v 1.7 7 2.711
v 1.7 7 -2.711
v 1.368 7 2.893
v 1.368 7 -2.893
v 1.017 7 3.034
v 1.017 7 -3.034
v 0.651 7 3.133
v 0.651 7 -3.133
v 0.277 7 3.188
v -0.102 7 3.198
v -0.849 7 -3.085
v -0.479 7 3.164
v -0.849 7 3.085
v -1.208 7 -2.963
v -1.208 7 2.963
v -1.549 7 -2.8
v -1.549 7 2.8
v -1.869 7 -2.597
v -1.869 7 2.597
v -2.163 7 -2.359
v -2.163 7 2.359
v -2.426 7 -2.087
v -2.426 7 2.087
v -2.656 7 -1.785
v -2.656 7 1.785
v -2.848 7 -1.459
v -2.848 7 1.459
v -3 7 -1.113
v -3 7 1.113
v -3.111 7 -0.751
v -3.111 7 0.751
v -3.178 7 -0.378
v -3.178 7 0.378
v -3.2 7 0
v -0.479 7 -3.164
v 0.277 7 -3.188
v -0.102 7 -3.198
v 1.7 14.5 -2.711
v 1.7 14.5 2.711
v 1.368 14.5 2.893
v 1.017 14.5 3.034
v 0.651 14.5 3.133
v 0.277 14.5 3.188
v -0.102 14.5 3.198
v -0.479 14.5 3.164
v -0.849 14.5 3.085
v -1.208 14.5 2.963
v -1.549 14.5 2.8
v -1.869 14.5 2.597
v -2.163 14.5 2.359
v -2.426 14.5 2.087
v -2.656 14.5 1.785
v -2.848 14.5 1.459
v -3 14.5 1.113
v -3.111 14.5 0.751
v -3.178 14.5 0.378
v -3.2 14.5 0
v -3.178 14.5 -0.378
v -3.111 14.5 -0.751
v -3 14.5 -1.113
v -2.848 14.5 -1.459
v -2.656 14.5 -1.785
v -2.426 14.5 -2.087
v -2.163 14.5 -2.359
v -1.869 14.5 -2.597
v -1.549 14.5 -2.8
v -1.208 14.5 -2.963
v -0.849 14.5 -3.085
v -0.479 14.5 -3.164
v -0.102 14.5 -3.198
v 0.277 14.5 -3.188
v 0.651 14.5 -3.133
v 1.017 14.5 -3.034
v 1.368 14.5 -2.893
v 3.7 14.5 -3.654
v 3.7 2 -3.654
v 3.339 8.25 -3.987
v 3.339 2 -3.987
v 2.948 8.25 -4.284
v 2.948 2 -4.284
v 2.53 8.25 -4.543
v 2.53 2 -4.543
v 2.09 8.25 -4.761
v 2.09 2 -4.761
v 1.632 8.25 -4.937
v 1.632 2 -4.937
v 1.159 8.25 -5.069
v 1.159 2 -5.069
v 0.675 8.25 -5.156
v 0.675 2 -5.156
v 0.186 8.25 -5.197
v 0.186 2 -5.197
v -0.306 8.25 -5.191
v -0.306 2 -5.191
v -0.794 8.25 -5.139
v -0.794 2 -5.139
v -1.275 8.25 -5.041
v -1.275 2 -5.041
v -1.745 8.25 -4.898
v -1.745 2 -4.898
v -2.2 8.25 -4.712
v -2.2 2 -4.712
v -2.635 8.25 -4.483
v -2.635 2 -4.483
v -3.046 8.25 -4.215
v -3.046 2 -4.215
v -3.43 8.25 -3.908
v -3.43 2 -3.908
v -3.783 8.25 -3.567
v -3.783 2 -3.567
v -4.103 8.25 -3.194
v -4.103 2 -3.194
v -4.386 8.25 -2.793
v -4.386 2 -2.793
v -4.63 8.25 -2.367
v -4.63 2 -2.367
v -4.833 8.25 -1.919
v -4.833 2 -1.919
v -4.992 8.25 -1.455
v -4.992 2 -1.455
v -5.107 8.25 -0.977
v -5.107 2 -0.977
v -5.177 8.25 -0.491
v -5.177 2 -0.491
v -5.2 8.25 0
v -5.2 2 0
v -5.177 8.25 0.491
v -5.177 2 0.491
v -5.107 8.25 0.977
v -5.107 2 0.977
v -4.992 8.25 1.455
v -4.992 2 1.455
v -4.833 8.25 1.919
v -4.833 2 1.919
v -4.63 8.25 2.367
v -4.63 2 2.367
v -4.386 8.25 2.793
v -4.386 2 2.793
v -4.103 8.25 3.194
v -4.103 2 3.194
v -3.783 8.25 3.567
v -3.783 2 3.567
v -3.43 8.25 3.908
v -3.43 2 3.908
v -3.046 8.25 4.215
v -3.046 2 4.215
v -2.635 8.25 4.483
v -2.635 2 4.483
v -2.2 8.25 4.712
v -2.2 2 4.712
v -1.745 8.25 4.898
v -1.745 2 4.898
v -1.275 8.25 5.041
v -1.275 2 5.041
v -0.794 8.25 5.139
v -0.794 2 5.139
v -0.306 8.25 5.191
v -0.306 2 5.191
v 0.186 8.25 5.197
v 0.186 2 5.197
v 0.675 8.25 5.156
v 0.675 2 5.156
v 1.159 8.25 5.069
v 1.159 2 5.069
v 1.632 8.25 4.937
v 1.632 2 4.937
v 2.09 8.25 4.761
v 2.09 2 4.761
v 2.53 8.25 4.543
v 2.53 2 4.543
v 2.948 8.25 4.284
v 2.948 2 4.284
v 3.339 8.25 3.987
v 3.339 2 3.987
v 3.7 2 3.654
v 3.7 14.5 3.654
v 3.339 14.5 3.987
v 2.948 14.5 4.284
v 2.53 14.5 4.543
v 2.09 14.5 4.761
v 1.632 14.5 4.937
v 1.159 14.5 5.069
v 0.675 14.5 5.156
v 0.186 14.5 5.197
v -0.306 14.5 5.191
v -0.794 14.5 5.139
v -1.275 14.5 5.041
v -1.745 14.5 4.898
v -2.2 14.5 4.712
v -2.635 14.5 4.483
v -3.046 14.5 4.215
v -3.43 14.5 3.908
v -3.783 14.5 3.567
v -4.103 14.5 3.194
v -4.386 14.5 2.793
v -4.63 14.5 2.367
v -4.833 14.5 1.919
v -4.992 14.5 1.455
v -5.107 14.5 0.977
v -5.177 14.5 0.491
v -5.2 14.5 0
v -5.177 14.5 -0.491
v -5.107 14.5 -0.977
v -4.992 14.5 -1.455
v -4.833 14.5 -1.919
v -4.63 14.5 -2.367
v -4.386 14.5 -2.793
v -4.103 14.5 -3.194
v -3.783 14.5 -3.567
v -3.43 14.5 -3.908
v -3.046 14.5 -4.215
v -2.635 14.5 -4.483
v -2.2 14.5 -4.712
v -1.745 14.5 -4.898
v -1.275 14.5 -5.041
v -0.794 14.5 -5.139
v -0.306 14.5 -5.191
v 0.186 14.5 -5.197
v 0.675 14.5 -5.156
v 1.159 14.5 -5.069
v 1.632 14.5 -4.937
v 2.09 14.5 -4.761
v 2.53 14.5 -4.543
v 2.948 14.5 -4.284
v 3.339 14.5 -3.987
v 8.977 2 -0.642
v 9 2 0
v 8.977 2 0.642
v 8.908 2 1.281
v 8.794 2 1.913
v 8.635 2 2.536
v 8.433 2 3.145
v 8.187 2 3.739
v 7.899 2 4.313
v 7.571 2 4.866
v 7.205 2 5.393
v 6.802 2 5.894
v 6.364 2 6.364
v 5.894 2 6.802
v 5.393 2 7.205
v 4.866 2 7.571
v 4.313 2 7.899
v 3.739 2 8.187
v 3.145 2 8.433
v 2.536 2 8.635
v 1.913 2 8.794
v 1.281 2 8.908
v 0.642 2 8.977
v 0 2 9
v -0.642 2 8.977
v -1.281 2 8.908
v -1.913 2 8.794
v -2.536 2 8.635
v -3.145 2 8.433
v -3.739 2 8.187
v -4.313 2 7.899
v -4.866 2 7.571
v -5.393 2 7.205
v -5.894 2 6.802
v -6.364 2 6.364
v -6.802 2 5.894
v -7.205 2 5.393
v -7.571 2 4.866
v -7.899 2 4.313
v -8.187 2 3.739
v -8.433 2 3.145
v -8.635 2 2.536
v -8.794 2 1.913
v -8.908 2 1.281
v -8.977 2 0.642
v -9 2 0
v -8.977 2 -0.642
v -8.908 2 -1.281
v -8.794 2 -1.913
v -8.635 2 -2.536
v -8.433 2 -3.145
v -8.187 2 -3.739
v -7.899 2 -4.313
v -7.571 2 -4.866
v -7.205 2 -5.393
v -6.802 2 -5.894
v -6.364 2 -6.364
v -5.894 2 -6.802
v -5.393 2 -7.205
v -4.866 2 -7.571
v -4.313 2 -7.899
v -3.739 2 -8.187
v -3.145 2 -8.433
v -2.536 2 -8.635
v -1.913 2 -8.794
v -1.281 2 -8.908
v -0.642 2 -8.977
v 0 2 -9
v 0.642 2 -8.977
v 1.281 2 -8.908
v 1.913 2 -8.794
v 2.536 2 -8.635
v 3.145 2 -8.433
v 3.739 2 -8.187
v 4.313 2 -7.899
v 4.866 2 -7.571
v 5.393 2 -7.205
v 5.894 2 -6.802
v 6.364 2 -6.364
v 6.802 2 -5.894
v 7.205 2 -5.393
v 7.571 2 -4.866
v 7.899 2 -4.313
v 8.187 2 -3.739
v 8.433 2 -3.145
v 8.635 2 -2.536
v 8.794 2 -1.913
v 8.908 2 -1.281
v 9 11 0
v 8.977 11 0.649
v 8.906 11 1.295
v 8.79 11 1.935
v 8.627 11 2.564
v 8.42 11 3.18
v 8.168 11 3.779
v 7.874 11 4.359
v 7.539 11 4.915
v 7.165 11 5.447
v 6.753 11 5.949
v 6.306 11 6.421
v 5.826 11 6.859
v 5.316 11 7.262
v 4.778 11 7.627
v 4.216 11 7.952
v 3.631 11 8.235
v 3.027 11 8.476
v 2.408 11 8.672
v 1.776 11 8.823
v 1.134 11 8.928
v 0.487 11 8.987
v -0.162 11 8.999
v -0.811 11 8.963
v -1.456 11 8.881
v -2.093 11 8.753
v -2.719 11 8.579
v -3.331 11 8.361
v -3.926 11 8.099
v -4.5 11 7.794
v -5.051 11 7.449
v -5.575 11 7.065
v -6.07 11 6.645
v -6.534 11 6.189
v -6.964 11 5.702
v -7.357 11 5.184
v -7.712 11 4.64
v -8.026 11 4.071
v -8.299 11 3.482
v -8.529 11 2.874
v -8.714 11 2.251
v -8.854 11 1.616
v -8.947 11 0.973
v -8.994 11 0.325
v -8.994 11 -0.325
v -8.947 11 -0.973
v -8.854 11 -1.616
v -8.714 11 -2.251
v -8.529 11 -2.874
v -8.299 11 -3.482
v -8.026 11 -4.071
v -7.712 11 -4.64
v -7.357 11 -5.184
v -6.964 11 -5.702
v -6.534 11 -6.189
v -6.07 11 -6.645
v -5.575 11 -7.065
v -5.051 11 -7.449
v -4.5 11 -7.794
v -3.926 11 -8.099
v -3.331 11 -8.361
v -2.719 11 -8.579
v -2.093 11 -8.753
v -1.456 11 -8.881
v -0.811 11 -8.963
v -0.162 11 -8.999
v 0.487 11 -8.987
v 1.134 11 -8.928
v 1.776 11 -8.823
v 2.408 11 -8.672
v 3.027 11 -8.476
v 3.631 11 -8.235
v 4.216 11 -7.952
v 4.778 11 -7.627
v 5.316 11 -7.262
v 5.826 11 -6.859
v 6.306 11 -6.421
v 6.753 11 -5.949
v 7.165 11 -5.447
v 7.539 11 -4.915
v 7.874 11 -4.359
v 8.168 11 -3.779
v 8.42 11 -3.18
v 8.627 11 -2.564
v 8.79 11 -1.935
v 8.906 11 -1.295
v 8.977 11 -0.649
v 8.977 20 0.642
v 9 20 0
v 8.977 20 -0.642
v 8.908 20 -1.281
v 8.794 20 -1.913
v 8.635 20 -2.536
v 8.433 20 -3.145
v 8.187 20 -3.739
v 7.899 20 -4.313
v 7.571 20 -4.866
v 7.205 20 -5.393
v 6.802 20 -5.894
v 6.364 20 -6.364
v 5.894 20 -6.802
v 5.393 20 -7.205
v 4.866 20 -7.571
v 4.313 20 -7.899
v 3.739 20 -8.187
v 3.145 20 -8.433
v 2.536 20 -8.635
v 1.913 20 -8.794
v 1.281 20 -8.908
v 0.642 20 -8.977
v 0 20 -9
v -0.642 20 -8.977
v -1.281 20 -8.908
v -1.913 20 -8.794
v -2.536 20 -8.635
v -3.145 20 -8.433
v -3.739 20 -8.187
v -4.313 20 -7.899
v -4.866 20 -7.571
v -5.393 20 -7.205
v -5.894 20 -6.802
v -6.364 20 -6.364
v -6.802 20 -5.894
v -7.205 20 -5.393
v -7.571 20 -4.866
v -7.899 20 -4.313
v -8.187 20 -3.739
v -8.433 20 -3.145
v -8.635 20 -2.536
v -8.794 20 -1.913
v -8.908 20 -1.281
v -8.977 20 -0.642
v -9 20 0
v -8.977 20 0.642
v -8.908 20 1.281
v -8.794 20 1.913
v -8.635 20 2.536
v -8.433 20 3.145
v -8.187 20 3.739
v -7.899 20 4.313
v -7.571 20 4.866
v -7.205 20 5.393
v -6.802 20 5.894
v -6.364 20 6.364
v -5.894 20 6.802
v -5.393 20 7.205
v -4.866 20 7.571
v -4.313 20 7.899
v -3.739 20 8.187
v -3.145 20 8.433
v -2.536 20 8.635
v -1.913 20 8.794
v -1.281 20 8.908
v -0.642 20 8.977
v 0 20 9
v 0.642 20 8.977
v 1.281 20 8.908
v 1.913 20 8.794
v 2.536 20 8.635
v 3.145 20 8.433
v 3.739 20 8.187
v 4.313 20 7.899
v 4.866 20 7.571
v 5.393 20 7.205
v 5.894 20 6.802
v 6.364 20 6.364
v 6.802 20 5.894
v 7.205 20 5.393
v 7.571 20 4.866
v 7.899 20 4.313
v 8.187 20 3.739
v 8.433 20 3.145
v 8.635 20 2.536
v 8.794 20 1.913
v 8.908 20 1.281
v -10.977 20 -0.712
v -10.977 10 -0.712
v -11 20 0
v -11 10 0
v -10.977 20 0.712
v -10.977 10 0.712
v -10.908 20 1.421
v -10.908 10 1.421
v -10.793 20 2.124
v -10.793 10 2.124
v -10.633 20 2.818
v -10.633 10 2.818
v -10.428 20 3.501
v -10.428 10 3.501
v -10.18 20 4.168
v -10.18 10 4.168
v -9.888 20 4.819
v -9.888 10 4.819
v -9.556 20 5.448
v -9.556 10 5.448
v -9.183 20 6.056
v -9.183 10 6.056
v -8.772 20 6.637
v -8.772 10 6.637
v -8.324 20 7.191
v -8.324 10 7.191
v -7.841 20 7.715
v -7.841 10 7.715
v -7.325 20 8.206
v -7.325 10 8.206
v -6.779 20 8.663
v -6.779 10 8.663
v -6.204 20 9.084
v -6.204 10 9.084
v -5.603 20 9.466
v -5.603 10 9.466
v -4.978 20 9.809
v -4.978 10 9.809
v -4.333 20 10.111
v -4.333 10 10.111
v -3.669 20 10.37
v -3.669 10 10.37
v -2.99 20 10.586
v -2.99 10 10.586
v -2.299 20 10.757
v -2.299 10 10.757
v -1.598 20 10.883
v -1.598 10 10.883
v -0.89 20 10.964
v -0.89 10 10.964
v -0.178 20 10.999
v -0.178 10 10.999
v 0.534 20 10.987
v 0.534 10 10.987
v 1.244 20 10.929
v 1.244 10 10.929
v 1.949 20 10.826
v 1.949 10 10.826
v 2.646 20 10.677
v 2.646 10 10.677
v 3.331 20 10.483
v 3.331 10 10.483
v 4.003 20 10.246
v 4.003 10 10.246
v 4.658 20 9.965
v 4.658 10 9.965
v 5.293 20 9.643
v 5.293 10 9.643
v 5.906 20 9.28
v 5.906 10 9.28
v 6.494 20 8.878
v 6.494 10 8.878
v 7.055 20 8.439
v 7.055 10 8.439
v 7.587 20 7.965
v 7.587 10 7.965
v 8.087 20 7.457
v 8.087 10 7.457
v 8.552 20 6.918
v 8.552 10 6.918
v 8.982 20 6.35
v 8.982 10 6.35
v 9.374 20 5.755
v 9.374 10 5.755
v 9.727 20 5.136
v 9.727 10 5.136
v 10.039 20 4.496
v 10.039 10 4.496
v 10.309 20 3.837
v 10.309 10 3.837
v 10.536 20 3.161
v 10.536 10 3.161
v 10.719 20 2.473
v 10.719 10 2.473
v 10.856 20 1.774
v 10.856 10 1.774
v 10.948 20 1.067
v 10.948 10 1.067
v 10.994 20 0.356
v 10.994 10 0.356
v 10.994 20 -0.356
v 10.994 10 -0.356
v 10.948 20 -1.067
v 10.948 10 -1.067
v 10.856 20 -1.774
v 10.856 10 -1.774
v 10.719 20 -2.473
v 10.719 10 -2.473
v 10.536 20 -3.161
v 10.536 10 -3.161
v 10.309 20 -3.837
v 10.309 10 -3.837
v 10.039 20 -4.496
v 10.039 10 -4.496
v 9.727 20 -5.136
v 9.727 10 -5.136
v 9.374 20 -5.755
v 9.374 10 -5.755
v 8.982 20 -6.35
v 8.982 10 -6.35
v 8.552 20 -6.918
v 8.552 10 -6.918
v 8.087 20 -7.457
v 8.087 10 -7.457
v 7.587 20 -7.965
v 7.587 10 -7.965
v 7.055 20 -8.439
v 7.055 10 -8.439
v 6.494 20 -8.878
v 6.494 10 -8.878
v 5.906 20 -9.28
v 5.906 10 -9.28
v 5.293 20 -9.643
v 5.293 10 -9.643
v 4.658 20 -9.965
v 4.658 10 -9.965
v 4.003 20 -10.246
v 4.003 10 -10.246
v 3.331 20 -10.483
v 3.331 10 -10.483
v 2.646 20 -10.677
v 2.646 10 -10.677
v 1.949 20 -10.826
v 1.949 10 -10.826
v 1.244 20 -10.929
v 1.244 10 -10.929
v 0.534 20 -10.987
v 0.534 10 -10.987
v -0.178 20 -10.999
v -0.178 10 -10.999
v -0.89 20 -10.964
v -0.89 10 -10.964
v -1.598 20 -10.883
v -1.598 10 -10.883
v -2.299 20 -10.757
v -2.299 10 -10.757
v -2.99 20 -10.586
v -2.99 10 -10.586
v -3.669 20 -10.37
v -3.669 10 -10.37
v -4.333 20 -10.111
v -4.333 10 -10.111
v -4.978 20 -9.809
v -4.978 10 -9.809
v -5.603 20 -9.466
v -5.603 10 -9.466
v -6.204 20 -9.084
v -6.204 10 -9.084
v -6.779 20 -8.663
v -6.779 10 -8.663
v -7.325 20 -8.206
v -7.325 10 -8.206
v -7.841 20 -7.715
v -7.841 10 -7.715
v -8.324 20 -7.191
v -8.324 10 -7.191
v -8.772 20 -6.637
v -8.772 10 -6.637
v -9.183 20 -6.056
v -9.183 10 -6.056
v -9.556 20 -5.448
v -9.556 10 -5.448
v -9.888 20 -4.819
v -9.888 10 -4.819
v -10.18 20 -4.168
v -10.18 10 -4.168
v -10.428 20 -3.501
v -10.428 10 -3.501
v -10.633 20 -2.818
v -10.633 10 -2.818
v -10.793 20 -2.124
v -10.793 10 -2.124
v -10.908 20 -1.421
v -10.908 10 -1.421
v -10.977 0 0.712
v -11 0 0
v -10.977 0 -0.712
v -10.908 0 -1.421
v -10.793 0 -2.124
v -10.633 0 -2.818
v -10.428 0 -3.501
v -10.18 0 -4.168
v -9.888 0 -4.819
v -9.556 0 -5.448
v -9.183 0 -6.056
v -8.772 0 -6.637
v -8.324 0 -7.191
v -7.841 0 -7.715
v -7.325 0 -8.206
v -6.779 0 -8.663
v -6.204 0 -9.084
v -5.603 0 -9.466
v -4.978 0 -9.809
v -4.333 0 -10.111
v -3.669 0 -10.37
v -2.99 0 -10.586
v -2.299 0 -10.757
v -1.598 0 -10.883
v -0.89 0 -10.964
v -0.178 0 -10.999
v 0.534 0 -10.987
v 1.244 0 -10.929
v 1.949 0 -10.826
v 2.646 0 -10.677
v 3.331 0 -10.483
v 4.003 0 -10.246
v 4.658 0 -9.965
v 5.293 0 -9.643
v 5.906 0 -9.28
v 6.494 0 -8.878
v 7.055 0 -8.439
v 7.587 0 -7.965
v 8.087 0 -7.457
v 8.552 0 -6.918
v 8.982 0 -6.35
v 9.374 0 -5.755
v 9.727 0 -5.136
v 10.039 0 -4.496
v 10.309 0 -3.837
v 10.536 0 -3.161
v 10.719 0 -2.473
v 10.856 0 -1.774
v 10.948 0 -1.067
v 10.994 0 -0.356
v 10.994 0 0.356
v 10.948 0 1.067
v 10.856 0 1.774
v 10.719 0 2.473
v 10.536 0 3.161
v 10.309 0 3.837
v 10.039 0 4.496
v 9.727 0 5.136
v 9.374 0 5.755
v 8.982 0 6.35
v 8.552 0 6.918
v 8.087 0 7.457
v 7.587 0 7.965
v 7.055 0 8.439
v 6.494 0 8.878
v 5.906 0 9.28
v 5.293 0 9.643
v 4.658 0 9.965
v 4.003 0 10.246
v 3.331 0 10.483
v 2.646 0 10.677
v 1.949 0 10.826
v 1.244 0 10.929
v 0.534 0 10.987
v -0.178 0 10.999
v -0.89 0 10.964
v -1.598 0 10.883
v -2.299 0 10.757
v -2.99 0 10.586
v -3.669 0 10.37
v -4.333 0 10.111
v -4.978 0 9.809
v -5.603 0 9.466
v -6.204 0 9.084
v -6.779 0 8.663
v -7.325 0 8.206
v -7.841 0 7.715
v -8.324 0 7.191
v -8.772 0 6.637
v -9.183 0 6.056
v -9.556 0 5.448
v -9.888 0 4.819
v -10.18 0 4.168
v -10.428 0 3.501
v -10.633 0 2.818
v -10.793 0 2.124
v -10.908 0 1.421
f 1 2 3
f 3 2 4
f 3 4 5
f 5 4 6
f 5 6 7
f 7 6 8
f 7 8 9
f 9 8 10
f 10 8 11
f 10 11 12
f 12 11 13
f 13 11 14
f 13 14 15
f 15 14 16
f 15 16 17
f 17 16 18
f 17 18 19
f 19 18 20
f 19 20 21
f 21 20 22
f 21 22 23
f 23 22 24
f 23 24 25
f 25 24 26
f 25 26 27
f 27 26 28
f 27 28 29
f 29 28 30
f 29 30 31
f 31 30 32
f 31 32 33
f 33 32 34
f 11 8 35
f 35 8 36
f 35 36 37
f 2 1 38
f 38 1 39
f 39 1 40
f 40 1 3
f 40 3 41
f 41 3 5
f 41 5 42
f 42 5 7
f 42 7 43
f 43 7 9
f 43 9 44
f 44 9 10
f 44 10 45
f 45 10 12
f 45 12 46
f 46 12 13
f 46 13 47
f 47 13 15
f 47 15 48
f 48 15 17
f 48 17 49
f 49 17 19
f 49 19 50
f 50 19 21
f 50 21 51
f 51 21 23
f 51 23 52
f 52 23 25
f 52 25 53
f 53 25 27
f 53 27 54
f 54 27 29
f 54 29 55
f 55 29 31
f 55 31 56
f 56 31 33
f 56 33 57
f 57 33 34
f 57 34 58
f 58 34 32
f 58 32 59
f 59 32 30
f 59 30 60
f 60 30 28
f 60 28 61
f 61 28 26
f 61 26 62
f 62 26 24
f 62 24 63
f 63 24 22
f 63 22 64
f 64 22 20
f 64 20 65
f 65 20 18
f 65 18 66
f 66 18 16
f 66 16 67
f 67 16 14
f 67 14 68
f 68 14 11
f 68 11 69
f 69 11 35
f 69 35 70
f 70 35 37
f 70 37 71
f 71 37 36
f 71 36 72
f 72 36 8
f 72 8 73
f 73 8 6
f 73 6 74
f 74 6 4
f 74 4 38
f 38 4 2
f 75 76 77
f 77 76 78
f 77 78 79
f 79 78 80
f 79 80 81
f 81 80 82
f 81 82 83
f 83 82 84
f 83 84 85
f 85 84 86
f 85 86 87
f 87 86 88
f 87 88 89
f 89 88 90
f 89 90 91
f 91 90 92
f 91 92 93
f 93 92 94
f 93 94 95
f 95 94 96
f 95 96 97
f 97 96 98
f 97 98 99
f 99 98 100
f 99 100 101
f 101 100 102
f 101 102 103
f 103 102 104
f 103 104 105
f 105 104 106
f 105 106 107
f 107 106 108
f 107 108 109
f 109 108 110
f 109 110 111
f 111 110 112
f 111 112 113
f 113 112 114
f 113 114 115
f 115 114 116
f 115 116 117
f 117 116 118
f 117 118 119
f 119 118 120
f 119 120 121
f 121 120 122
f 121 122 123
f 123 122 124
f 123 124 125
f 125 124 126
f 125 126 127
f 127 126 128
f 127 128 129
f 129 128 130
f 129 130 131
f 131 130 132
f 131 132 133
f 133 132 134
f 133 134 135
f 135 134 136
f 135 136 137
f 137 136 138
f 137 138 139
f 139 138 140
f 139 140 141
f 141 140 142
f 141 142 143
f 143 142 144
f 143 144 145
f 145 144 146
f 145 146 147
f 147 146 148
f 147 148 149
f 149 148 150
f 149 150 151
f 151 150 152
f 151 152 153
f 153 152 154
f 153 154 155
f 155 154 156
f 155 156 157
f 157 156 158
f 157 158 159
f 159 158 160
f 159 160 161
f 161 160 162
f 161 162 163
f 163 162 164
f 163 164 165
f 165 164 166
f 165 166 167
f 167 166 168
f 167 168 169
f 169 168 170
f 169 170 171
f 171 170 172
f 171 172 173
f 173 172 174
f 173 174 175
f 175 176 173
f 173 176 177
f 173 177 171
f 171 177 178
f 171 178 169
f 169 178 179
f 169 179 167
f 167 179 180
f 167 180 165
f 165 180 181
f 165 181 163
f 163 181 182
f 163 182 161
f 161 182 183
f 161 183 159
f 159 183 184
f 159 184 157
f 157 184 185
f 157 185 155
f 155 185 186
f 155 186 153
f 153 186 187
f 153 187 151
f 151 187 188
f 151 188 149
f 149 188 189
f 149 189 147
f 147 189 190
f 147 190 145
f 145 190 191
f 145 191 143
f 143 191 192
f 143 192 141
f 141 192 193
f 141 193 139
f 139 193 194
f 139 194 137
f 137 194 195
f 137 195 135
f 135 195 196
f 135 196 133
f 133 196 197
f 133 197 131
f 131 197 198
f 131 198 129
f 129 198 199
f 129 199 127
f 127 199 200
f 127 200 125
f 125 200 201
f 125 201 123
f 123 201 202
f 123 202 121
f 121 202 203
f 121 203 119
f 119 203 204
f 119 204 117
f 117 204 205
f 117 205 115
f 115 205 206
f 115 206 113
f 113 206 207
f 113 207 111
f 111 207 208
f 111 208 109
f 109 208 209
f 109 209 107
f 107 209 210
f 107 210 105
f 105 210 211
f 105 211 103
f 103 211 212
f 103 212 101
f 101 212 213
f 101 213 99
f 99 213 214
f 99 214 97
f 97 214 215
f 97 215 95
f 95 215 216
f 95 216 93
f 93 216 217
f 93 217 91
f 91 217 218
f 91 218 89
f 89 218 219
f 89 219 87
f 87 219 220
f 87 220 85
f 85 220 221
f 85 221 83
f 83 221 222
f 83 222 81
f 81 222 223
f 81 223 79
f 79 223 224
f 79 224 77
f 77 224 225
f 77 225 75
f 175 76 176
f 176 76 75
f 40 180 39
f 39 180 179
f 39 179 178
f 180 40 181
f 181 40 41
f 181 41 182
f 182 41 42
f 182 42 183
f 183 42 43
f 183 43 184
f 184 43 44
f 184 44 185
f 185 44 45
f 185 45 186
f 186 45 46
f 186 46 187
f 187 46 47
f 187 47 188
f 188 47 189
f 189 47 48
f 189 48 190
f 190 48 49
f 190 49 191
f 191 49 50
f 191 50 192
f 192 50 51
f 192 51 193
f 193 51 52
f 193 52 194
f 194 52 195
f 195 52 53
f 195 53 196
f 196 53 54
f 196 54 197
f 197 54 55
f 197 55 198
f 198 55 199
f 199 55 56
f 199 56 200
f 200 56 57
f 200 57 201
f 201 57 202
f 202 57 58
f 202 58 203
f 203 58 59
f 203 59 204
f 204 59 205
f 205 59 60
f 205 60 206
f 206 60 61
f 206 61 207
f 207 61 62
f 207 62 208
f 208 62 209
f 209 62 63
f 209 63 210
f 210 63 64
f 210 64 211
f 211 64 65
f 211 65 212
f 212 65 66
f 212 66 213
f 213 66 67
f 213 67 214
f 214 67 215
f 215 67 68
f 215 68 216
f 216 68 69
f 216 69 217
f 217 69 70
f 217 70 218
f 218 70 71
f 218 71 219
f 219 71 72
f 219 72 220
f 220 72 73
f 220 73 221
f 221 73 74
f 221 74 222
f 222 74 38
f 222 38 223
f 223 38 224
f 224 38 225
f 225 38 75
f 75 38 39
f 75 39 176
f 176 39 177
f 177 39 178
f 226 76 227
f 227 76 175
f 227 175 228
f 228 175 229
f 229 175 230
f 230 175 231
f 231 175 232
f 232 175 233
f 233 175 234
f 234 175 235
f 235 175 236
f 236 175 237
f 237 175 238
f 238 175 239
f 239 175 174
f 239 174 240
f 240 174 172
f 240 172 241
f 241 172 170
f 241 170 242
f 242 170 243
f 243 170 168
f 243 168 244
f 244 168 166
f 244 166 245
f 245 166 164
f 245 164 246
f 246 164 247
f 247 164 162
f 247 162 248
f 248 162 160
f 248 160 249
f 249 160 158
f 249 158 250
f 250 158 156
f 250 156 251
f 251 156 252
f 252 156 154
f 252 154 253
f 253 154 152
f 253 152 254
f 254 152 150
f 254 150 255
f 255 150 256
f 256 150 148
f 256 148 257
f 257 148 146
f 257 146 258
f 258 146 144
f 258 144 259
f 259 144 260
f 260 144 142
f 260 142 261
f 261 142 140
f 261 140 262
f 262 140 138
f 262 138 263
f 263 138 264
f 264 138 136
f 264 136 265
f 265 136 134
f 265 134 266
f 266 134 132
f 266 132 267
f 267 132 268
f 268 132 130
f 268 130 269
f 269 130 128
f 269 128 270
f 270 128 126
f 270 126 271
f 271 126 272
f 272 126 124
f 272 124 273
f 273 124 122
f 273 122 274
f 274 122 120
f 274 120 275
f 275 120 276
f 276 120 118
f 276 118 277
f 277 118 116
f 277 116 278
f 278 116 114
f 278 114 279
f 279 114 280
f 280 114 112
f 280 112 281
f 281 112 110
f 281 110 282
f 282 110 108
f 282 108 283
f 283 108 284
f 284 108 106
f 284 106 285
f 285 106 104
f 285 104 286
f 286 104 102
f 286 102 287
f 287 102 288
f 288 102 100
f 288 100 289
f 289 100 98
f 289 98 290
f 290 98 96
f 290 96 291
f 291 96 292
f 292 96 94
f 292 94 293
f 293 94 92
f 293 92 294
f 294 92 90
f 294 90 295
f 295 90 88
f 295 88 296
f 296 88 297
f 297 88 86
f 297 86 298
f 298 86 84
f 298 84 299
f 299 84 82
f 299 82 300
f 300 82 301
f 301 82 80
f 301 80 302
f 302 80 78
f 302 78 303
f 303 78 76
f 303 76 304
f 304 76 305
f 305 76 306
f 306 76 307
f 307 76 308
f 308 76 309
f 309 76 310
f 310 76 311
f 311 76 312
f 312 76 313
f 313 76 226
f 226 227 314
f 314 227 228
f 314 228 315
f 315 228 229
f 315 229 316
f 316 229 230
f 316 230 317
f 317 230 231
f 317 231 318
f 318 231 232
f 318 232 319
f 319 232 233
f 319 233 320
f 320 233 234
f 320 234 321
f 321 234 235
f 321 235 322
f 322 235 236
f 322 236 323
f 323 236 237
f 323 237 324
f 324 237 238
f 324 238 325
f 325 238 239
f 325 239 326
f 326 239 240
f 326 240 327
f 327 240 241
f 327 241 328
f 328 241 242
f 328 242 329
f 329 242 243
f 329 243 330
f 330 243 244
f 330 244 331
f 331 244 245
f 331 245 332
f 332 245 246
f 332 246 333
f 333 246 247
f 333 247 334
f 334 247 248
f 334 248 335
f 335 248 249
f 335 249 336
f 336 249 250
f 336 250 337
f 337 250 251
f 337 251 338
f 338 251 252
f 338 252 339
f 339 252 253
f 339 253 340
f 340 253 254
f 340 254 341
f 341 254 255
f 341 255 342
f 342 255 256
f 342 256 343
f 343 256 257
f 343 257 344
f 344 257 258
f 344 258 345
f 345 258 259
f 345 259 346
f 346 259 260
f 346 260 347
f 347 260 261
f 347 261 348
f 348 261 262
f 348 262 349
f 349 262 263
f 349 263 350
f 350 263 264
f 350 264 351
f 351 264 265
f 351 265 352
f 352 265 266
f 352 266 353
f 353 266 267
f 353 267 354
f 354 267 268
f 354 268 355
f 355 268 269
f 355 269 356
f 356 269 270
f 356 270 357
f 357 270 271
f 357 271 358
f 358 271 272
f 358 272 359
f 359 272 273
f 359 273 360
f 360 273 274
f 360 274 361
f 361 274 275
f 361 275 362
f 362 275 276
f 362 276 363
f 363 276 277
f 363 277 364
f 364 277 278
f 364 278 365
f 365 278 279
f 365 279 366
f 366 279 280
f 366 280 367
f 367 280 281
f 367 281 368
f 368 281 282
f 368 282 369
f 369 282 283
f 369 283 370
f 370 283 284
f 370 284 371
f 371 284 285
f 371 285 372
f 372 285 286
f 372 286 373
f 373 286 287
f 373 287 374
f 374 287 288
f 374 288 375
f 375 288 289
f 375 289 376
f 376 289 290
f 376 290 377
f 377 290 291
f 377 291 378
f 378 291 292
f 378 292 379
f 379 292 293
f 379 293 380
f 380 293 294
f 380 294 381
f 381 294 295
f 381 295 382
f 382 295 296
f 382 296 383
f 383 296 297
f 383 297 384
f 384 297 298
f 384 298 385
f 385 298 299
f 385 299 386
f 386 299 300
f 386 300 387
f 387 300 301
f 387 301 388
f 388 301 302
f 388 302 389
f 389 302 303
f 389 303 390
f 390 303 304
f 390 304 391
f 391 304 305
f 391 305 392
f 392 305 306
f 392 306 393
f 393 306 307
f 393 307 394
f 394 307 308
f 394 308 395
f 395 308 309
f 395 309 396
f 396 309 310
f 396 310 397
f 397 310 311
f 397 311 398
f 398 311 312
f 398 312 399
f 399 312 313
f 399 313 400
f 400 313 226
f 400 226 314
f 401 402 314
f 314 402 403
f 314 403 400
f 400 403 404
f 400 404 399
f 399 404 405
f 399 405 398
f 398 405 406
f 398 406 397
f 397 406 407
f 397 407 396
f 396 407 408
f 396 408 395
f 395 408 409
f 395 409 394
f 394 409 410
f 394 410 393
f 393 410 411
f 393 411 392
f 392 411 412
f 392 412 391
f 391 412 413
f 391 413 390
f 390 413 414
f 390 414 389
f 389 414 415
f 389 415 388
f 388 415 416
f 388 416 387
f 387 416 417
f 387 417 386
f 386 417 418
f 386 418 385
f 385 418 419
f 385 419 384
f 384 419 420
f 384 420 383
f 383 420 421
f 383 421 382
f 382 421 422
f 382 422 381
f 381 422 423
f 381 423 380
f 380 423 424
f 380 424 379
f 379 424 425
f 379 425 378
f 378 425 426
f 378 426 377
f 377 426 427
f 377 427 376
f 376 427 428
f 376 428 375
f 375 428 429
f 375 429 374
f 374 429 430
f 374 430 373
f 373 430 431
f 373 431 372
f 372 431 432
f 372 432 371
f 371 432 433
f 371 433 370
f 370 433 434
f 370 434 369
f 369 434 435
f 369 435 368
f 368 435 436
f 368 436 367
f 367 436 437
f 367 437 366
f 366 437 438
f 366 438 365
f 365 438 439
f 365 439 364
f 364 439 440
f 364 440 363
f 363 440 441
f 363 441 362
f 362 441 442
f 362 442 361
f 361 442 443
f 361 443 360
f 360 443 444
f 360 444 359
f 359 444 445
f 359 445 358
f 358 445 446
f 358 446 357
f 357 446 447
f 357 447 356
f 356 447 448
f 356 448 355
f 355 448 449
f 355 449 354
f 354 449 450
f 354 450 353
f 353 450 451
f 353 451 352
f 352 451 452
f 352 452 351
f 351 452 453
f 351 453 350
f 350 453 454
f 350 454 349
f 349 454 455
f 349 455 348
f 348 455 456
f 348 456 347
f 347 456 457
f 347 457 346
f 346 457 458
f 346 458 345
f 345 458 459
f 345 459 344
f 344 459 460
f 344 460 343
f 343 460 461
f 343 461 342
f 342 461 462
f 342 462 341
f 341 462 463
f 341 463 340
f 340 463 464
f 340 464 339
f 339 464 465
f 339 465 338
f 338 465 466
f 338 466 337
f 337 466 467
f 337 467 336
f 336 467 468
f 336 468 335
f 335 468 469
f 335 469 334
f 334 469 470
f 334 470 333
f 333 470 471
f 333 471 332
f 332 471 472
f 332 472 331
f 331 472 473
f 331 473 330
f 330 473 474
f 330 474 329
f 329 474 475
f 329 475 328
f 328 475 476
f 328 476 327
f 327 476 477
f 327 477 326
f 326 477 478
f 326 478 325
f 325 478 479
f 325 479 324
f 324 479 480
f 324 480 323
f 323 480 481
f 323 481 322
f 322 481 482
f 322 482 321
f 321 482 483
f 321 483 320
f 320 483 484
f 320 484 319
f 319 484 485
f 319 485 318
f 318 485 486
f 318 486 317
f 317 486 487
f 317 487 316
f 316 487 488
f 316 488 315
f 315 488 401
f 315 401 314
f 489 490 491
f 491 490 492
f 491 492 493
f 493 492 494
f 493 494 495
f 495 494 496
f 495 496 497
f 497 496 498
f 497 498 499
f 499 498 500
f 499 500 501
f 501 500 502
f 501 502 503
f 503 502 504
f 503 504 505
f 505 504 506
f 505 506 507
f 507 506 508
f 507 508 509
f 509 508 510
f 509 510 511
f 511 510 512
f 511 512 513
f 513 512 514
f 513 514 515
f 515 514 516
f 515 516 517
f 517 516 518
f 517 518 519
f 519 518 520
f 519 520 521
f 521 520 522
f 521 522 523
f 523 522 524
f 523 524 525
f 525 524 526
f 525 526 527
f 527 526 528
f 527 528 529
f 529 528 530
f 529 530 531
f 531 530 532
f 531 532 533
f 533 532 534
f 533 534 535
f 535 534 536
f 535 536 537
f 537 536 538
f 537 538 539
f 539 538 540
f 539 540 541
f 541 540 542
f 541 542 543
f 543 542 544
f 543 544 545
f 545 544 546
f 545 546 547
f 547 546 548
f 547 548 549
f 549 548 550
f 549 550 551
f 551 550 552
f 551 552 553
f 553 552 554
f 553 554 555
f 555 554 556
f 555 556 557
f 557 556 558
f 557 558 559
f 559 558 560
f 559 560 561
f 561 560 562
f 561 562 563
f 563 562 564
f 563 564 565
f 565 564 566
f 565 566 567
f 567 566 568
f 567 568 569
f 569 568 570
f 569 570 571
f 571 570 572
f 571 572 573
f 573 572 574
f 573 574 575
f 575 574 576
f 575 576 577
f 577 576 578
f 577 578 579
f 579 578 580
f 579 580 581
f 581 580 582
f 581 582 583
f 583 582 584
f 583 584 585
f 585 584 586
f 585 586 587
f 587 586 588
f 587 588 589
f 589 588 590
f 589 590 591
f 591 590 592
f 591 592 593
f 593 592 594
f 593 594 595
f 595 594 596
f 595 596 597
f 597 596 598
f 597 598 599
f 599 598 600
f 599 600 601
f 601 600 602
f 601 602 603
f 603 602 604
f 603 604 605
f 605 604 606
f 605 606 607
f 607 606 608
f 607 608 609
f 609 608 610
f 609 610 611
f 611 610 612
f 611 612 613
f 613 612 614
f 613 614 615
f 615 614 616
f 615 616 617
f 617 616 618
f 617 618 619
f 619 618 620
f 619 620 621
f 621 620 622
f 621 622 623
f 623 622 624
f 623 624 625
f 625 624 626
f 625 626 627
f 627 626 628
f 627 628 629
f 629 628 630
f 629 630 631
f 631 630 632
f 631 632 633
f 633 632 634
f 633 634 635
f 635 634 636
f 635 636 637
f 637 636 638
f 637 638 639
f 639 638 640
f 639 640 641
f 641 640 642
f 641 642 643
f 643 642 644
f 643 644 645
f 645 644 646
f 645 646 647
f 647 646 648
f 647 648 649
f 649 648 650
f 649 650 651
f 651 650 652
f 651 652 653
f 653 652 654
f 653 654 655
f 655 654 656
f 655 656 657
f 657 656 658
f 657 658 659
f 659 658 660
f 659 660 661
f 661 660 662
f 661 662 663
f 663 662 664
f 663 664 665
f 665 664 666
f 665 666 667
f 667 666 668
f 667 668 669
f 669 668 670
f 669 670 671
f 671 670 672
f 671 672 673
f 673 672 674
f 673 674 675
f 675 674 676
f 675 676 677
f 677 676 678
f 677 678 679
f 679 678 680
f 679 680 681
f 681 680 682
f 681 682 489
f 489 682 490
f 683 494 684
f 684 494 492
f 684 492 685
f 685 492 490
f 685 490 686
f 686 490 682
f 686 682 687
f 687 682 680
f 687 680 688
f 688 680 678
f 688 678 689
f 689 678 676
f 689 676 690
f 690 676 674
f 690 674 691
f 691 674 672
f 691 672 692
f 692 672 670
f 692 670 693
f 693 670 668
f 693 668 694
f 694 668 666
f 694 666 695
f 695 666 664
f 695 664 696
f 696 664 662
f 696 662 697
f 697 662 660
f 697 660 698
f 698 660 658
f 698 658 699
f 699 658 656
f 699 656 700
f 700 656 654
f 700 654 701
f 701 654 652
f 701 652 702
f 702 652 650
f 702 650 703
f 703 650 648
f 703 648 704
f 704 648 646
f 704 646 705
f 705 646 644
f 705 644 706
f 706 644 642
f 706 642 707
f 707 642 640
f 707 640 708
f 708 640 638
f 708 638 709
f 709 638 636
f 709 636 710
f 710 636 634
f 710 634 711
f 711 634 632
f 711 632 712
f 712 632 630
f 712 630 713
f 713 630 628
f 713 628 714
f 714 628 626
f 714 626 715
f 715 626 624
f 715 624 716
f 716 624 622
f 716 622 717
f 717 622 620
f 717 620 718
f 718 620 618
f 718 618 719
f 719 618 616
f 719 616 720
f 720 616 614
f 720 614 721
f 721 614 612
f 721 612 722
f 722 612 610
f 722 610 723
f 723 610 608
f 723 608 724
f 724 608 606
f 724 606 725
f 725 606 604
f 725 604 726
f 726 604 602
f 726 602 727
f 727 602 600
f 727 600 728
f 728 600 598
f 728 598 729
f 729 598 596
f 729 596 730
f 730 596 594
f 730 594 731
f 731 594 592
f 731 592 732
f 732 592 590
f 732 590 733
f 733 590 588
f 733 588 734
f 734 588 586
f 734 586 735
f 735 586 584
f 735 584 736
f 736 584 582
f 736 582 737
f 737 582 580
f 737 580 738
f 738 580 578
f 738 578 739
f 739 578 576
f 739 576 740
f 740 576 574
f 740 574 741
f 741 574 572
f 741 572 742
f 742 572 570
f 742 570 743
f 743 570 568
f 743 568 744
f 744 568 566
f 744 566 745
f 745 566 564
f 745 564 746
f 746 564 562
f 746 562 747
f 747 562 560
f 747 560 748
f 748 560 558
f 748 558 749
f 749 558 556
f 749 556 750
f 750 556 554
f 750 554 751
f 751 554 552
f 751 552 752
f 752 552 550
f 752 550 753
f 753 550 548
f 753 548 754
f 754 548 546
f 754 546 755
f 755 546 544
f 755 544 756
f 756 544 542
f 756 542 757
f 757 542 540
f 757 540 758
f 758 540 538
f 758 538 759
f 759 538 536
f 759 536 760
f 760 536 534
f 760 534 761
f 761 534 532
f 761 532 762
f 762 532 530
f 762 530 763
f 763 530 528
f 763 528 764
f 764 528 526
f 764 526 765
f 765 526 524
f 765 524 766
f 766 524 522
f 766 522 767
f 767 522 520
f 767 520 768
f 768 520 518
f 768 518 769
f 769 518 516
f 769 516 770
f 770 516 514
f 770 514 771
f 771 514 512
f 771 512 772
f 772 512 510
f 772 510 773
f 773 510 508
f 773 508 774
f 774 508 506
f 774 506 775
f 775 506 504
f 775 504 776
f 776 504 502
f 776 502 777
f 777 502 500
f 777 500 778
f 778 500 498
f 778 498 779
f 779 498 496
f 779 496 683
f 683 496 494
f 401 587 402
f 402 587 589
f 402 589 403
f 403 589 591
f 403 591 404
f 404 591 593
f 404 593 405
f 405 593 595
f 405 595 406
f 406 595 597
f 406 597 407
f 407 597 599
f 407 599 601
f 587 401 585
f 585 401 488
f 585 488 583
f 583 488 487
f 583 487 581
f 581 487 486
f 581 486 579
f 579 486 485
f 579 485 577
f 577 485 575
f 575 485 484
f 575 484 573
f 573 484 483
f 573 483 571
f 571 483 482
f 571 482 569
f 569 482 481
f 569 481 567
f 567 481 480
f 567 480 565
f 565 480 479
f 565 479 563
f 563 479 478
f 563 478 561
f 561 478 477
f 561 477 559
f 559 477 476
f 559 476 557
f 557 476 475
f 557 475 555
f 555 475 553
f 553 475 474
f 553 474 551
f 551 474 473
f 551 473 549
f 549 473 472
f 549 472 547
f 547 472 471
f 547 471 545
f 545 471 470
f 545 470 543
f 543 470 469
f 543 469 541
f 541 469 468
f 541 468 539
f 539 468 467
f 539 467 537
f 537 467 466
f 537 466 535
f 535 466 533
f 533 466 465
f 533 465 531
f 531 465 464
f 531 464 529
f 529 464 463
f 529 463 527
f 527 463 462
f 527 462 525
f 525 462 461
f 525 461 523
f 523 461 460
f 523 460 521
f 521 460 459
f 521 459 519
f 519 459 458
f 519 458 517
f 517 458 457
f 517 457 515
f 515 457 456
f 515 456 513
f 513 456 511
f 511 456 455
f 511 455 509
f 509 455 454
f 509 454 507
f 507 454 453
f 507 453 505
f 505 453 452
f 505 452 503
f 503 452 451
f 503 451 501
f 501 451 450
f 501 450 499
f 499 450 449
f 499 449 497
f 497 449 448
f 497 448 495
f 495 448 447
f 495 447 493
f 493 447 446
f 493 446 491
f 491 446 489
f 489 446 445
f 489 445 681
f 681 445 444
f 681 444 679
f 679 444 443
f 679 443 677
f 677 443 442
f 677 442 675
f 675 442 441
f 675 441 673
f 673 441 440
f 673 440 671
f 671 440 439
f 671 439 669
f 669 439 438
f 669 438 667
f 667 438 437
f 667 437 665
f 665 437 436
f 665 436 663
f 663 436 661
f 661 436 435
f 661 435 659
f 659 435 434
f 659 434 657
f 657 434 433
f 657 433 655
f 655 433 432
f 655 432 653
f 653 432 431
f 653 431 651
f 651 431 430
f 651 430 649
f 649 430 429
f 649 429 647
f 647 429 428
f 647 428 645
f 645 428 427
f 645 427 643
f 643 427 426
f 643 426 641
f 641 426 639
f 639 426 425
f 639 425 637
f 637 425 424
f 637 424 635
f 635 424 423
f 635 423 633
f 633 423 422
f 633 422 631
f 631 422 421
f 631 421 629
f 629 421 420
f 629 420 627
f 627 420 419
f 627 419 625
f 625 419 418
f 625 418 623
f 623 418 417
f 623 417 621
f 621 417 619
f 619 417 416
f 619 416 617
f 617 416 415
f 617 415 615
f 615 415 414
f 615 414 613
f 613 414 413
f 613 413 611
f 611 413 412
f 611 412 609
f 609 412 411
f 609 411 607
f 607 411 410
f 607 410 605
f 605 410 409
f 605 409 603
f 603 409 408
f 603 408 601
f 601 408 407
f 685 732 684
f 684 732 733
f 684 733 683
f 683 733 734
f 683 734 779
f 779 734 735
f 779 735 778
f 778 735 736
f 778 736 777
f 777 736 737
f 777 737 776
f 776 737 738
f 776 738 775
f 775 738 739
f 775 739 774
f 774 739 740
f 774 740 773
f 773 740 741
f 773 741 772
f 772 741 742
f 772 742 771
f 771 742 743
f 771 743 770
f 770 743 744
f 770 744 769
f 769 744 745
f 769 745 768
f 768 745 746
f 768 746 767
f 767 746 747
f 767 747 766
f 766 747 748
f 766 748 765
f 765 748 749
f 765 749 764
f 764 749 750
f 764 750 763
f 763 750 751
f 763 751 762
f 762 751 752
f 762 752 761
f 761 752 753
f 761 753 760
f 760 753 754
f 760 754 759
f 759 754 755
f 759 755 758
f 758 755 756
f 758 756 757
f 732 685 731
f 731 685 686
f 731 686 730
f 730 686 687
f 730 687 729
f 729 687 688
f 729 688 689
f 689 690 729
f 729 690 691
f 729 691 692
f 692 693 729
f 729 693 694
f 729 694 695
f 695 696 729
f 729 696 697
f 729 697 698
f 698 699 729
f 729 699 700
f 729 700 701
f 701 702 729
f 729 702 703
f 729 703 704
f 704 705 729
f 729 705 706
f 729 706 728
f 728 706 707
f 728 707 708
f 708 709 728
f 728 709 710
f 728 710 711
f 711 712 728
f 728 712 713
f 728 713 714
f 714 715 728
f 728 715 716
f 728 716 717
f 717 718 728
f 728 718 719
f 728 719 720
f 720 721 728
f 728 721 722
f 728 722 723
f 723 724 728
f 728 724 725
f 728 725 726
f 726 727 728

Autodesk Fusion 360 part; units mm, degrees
sketch "Outer" plane through (0, 0, 0) normal (0, 1, 0) x (1, 0, 0)
  circle A0 centre (0, 0) radius 11
  dimension "d1" = 22
extrude "Extrude1" add sketch "Outer" along normal blind 20
sketch "Inner" plane through (0, 20, 0) normal (0, 1, 0) x (-1, 0, 0)
  circle A0 centre (0, 0) radius 11
  circle A1 centre (0, 0) radius 9
  dimension "d4" = 18
extrude "Extrude2" cut sketch "Inner" against normal blind 18 contours A1
sketch "Shaft" plane through (0, 2, 0) normal (0, 1, 0) x (-1, 0, 0)
  circle A0 centre (0, 0) radius 9
  line L0 (-1.7, 2.7111) -> (-1.7, -2.7111)
  arc A1 (-1.7, -2.7111) -> (-1.7, 2.7111) centre (0, 0) ccw
  arc A2 (-3.7, -3.6538) -> (-3.7, 3.6538) centre (0, 0) ccw
  line L1 (-3.7, 3.6538) -> (-3.7, -3.6538)
  dimension "d7" = 6.4
  dimension "d8" = 1.7
  dimension "d9" = 2
extrude "Extrude3" add sketch "Shaft" along normal blind 12.5 contours A2 L1
extrude "Extrude4" add 1 faces at (0.0662, 2, 0.598) along direction (0, 1, 0) blind 5
equation "d5 = -( 20 mm - 2 mm )"
equation "d7 = 6 mm + 0.2 mm + 0.2 mm"
equation "d8 = ( 4.5 mm - 3 mm ) + 0.2 mm"
equation "d10 = 20 mm - 2 mm - 5.5 mm"
equation "d12 = 20 mm - 2 mm - 5.5 mm - 7.5 mm"
